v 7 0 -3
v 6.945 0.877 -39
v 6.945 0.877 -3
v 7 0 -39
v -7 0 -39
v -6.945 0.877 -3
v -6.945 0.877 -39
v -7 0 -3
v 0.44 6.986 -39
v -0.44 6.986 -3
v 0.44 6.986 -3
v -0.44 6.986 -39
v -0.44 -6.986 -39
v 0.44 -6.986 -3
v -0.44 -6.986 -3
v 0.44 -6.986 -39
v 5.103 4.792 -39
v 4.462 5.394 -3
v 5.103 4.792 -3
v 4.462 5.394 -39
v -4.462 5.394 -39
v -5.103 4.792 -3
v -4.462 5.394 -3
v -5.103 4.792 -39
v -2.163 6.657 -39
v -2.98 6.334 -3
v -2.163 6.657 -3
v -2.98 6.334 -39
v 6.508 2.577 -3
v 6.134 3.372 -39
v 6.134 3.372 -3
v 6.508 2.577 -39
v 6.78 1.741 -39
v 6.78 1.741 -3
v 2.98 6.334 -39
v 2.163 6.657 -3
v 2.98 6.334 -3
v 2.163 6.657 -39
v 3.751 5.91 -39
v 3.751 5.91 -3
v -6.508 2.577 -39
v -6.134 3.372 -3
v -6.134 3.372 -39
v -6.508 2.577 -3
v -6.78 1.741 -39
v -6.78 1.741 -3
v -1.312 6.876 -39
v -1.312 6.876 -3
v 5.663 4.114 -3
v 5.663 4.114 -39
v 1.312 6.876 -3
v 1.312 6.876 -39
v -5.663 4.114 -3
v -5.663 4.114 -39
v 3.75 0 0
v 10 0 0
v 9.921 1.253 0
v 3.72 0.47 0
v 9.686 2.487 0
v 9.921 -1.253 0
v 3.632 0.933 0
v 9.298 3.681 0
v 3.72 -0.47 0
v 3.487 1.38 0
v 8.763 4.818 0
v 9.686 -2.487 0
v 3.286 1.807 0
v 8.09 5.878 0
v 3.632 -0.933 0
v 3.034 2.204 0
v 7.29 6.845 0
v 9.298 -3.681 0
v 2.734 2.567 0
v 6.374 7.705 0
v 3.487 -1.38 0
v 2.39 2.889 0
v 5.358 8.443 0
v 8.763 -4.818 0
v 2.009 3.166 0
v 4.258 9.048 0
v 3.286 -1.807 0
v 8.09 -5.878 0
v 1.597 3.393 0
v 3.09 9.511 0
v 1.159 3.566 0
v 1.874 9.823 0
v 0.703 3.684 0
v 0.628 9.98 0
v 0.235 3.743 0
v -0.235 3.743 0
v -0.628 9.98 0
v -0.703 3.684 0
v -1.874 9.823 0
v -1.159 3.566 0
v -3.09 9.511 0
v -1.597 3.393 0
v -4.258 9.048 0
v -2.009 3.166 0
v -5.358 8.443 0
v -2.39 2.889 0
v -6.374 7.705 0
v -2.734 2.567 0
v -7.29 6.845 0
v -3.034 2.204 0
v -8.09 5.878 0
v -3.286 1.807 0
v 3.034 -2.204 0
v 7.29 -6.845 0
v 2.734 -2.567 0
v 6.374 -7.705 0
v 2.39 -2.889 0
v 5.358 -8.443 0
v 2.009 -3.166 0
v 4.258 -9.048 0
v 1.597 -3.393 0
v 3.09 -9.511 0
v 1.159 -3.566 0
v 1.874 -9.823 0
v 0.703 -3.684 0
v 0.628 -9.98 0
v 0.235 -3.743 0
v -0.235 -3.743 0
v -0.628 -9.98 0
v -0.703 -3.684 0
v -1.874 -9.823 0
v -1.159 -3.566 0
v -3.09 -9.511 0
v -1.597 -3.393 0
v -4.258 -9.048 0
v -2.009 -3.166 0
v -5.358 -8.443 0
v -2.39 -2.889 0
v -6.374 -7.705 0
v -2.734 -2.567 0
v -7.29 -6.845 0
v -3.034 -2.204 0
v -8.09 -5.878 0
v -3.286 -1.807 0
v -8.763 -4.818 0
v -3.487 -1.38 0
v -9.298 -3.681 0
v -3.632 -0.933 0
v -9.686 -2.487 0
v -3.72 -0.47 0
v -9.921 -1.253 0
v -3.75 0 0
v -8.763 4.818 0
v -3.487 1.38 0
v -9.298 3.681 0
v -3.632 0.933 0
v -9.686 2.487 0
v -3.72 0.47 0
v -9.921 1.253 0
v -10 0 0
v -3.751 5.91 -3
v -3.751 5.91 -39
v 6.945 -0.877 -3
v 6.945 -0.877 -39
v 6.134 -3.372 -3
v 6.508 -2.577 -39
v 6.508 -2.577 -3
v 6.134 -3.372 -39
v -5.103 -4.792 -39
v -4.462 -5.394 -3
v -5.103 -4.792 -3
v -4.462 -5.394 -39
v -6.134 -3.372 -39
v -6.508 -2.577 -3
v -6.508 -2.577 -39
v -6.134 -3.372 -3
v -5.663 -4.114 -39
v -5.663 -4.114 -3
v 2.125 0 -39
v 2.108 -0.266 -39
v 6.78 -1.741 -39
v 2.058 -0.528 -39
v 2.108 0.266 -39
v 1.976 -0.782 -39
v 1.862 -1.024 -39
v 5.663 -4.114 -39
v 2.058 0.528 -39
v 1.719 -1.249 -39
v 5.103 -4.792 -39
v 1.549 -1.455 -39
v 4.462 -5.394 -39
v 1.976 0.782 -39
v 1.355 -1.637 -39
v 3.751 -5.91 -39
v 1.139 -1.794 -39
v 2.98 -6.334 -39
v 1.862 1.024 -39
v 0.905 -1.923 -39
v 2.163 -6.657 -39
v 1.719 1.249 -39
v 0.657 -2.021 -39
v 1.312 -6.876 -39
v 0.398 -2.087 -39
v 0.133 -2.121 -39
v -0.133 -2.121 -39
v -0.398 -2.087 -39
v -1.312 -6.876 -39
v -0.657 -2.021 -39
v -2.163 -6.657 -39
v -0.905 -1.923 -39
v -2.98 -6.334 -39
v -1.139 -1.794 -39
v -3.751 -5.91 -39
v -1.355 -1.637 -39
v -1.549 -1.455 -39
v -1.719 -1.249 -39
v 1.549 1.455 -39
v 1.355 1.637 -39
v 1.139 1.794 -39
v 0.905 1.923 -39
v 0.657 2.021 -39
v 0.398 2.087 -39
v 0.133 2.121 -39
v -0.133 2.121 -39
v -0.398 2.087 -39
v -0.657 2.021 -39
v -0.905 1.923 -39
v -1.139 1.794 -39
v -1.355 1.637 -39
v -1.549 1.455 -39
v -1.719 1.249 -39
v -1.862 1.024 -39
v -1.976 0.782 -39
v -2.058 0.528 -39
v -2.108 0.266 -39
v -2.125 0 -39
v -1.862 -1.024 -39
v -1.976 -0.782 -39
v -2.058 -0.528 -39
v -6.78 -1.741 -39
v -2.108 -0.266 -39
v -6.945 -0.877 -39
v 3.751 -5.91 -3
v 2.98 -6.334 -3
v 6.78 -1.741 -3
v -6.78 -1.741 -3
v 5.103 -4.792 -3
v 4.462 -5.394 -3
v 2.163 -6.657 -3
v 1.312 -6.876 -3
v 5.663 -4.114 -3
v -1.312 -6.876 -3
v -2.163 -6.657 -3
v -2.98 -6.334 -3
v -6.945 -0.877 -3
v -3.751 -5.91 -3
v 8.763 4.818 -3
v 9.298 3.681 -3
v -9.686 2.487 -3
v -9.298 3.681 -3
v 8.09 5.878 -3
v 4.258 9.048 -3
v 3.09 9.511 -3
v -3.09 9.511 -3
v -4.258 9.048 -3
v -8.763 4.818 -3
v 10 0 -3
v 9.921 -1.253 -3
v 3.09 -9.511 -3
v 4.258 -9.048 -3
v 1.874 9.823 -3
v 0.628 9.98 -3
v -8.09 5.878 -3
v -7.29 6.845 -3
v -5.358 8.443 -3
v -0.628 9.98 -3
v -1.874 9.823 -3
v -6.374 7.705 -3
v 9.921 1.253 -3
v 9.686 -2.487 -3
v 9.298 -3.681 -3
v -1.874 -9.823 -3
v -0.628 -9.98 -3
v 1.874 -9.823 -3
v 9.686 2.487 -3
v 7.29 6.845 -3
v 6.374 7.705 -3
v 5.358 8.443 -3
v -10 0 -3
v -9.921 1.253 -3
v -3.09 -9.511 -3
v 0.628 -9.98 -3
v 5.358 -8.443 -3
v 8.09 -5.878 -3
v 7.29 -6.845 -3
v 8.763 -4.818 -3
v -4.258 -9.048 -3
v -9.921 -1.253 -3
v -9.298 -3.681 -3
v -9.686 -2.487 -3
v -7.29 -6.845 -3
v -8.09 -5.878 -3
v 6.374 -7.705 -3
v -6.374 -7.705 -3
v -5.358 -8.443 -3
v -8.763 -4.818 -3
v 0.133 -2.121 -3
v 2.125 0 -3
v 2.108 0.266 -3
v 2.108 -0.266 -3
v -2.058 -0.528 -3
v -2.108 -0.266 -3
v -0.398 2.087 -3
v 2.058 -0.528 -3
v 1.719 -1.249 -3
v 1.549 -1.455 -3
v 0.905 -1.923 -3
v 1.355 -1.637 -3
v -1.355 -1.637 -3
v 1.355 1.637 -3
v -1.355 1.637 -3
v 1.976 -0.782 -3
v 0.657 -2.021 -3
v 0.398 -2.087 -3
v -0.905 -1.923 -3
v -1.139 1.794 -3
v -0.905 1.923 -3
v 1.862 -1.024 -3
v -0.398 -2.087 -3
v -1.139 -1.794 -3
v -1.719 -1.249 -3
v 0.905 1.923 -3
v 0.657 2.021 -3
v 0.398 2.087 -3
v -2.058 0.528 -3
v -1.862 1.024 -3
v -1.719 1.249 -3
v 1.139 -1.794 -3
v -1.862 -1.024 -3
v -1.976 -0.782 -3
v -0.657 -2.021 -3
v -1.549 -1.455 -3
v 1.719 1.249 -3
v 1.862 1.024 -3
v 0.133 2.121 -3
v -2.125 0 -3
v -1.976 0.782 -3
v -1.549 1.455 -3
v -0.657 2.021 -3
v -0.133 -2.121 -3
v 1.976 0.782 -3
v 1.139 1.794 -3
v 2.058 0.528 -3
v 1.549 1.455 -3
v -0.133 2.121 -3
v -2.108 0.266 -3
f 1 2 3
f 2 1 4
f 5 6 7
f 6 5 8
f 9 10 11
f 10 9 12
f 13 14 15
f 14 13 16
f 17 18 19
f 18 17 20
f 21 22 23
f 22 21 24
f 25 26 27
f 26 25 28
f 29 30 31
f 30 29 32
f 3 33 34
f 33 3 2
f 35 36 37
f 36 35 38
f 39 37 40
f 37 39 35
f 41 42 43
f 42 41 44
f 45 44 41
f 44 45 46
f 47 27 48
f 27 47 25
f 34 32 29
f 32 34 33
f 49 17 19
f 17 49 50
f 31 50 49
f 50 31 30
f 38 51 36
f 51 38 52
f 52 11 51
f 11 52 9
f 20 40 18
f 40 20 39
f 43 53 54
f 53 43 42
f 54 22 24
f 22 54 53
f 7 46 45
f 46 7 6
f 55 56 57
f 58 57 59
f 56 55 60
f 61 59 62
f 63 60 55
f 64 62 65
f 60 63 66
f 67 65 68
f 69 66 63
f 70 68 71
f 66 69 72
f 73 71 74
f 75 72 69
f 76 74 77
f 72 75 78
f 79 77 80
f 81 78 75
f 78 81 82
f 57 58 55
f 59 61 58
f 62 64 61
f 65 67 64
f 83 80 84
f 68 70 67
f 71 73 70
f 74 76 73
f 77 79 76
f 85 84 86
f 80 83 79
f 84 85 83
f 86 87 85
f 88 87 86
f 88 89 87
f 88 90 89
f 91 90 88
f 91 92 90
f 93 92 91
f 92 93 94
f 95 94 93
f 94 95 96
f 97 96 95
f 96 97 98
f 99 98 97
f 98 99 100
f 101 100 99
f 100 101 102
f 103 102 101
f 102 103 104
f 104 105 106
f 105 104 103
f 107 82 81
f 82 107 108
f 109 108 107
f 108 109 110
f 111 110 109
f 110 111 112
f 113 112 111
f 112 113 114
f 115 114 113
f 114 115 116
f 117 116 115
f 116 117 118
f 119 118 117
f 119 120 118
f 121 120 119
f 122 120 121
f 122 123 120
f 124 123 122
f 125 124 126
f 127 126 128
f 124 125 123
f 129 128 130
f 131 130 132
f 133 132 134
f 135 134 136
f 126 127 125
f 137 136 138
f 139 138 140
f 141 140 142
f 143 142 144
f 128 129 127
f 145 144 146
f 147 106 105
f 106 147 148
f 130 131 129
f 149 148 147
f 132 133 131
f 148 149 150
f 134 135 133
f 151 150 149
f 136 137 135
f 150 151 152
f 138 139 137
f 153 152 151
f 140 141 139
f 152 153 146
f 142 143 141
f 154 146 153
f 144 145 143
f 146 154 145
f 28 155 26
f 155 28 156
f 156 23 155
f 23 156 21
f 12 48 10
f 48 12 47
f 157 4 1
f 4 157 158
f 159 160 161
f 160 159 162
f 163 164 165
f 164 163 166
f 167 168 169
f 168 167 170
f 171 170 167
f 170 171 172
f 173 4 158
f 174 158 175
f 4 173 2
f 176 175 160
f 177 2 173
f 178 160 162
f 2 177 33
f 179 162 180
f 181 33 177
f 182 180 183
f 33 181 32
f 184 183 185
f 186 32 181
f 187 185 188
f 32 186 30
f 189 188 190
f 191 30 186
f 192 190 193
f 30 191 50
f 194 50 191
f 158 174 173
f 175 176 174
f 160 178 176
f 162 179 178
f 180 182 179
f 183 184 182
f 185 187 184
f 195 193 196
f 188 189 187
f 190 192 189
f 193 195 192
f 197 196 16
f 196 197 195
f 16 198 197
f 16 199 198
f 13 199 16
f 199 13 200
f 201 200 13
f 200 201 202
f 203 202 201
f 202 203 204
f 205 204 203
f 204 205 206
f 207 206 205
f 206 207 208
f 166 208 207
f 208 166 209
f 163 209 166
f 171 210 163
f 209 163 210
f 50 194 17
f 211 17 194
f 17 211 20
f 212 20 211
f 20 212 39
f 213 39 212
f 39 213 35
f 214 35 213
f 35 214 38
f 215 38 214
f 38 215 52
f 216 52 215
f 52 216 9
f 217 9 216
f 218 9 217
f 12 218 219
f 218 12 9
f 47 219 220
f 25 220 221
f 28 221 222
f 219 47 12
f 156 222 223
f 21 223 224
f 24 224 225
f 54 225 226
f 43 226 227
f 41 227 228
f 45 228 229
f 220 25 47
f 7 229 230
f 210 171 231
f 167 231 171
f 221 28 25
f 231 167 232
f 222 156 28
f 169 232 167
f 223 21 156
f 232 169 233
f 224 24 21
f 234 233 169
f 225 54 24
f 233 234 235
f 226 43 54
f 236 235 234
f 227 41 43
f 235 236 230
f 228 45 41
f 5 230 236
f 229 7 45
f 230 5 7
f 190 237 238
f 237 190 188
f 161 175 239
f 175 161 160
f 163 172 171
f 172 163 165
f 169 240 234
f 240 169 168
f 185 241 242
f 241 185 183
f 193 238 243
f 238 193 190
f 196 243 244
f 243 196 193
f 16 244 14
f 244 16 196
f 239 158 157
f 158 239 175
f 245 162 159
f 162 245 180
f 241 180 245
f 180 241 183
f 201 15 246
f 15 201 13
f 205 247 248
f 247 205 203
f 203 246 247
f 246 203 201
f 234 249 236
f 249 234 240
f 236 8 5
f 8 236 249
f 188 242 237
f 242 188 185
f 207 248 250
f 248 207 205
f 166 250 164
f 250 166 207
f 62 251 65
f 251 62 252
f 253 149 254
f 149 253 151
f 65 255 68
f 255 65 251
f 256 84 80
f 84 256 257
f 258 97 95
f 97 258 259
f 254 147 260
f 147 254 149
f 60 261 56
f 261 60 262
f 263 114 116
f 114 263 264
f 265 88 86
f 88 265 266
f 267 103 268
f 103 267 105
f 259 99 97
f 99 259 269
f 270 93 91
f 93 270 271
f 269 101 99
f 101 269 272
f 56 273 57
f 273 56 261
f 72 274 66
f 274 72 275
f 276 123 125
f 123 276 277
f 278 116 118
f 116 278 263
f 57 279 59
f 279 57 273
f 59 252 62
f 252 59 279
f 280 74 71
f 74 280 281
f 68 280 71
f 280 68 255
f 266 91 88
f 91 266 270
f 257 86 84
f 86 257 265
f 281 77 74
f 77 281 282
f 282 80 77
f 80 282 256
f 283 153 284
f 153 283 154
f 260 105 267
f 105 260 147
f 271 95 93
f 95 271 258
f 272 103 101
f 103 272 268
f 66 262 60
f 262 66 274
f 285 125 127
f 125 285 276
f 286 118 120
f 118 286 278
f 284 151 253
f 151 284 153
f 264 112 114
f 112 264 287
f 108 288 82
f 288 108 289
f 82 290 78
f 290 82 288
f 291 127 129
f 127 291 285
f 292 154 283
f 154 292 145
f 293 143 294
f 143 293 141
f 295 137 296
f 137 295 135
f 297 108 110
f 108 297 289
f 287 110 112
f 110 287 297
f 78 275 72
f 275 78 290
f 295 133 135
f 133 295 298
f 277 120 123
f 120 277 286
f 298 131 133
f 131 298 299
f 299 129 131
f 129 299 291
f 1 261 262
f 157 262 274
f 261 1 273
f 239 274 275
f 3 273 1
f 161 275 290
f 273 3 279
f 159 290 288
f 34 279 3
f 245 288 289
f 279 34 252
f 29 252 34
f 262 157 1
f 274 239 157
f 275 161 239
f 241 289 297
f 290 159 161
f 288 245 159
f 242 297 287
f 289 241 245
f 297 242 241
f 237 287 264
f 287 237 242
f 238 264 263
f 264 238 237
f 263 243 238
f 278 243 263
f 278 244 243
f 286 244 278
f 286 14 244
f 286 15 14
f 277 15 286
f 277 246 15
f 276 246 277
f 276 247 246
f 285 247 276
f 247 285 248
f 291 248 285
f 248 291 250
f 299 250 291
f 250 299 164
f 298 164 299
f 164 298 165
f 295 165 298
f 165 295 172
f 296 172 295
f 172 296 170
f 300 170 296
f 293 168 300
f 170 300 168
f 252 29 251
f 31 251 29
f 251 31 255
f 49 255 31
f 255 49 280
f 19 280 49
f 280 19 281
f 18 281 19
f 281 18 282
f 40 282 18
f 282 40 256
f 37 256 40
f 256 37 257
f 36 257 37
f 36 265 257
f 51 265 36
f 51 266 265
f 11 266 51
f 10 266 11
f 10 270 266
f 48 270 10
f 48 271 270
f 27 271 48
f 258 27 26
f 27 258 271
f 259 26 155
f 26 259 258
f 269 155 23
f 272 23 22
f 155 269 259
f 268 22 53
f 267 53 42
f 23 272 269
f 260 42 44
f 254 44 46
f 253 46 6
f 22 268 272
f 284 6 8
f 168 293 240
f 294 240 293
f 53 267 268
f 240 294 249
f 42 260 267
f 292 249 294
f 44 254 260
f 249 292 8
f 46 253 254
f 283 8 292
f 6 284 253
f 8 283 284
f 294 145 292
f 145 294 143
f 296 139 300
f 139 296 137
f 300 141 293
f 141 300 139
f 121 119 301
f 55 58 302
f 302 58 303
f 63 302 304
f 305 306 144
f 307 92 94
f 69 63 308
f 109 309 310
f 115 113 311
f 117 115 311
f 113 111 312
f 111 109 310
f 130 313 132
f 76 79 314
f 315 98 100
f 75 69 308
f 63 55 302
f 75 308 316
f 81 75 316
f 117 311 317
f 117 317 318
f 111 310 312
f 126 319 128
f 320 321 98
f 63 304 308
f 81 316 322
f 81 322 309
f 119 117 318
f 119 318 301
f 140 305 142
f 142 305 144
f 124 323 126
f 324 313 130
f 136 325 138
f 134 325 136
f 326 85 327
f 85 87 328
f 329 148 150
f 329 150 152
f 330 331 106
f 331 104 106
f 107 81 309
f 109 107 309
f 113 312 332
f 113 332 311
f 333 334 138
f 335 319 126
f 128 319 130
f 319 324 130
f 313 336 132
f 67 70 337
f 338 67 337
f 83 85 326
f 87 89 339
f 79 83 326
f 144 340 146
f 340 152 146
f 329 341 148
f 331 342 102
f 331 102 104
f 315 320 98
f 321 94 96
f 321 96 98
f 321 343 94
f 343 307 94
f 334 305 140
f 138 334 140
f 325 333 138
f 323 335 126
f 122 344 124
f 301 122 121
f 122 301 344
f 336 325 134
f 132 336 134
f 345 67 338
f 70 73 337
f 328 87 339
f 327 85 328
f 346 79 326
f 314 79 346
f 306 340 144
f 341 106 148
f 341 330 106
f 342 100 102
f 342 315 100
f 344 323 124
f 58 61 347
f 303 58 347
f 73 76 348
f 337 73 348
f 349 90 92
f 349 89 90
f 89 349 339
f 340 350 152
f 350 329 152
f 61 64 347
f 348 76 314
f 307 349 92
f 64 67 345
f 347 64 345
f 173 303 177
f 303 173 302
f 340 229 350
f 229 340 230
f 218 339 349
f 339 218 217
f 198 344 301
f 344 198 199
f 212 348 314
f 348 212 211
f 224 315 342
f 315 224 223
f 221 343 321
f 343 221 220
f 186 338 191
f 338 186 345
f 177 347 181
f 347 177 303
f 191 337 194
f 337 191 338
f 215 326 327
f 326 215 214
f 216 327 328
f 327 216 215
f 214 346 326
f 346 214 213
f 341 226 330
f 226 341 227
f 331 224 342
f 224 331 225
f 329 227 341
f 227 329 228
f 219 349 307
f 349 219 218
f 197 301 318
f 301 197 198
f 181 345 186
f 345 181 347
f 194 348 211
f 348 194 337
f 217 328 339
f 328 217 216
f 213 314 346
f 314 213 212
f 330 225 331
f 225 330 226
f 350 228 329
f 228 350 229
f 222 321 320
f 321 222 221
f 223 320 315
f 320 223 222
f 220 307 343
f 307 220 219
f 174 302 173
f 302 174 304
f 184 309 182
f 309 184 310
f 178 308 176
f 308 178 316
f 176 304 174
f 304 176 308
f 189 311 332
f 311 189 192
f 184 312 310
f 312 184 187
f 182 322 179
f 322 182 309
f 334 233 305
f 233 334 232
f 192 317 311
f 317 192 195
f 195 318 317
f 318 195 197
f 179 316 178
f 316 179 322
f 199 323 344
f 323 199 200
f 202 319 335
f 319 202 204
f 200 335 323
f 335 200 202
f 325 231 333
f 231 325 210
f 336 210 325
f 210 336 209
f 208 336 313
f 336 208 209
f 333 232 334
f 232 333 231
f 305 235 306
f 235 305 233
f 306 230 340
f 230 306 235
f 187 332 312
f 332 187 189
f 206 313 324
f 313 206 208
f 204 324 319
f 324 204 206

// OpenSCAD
$fn = 50;


difference() {
	union() {
		translate(v = [0, 0, -39.0000000000]) {
			cylinder(h = 39, r = 7.0000000000);
		}
		translate(v = [0, 0, -3.0000000000]) {
			cylinder(h = 3, r = 10.0000000000);
		}
	}
	union() {
		translate(v = [0, 0, 0]) {
			rotate(a = [0, 0, 0]) {
				difference() {
					union() {
						#translate(v = [0, 0, -39.0000000000]) {
							cylinder(h = 39, r = 2.0000000000);
						}
						#translate(v = [0, 0, -3]) {
							cylinder(h = 3, r1 = 2.1250000000, r2 = 3.7500000000);
						}
						#translate(v = [0, 0, -39.0000000000]) {
							cylinder(h = 39, r = 2.1250000000);
						}
						#translate(v = [0, 0, -39.0000000000]) {
							cylinder(h = 39, r = 2.0000000000);
						}
					}
					union();
				}
			}
		}
	}
}
